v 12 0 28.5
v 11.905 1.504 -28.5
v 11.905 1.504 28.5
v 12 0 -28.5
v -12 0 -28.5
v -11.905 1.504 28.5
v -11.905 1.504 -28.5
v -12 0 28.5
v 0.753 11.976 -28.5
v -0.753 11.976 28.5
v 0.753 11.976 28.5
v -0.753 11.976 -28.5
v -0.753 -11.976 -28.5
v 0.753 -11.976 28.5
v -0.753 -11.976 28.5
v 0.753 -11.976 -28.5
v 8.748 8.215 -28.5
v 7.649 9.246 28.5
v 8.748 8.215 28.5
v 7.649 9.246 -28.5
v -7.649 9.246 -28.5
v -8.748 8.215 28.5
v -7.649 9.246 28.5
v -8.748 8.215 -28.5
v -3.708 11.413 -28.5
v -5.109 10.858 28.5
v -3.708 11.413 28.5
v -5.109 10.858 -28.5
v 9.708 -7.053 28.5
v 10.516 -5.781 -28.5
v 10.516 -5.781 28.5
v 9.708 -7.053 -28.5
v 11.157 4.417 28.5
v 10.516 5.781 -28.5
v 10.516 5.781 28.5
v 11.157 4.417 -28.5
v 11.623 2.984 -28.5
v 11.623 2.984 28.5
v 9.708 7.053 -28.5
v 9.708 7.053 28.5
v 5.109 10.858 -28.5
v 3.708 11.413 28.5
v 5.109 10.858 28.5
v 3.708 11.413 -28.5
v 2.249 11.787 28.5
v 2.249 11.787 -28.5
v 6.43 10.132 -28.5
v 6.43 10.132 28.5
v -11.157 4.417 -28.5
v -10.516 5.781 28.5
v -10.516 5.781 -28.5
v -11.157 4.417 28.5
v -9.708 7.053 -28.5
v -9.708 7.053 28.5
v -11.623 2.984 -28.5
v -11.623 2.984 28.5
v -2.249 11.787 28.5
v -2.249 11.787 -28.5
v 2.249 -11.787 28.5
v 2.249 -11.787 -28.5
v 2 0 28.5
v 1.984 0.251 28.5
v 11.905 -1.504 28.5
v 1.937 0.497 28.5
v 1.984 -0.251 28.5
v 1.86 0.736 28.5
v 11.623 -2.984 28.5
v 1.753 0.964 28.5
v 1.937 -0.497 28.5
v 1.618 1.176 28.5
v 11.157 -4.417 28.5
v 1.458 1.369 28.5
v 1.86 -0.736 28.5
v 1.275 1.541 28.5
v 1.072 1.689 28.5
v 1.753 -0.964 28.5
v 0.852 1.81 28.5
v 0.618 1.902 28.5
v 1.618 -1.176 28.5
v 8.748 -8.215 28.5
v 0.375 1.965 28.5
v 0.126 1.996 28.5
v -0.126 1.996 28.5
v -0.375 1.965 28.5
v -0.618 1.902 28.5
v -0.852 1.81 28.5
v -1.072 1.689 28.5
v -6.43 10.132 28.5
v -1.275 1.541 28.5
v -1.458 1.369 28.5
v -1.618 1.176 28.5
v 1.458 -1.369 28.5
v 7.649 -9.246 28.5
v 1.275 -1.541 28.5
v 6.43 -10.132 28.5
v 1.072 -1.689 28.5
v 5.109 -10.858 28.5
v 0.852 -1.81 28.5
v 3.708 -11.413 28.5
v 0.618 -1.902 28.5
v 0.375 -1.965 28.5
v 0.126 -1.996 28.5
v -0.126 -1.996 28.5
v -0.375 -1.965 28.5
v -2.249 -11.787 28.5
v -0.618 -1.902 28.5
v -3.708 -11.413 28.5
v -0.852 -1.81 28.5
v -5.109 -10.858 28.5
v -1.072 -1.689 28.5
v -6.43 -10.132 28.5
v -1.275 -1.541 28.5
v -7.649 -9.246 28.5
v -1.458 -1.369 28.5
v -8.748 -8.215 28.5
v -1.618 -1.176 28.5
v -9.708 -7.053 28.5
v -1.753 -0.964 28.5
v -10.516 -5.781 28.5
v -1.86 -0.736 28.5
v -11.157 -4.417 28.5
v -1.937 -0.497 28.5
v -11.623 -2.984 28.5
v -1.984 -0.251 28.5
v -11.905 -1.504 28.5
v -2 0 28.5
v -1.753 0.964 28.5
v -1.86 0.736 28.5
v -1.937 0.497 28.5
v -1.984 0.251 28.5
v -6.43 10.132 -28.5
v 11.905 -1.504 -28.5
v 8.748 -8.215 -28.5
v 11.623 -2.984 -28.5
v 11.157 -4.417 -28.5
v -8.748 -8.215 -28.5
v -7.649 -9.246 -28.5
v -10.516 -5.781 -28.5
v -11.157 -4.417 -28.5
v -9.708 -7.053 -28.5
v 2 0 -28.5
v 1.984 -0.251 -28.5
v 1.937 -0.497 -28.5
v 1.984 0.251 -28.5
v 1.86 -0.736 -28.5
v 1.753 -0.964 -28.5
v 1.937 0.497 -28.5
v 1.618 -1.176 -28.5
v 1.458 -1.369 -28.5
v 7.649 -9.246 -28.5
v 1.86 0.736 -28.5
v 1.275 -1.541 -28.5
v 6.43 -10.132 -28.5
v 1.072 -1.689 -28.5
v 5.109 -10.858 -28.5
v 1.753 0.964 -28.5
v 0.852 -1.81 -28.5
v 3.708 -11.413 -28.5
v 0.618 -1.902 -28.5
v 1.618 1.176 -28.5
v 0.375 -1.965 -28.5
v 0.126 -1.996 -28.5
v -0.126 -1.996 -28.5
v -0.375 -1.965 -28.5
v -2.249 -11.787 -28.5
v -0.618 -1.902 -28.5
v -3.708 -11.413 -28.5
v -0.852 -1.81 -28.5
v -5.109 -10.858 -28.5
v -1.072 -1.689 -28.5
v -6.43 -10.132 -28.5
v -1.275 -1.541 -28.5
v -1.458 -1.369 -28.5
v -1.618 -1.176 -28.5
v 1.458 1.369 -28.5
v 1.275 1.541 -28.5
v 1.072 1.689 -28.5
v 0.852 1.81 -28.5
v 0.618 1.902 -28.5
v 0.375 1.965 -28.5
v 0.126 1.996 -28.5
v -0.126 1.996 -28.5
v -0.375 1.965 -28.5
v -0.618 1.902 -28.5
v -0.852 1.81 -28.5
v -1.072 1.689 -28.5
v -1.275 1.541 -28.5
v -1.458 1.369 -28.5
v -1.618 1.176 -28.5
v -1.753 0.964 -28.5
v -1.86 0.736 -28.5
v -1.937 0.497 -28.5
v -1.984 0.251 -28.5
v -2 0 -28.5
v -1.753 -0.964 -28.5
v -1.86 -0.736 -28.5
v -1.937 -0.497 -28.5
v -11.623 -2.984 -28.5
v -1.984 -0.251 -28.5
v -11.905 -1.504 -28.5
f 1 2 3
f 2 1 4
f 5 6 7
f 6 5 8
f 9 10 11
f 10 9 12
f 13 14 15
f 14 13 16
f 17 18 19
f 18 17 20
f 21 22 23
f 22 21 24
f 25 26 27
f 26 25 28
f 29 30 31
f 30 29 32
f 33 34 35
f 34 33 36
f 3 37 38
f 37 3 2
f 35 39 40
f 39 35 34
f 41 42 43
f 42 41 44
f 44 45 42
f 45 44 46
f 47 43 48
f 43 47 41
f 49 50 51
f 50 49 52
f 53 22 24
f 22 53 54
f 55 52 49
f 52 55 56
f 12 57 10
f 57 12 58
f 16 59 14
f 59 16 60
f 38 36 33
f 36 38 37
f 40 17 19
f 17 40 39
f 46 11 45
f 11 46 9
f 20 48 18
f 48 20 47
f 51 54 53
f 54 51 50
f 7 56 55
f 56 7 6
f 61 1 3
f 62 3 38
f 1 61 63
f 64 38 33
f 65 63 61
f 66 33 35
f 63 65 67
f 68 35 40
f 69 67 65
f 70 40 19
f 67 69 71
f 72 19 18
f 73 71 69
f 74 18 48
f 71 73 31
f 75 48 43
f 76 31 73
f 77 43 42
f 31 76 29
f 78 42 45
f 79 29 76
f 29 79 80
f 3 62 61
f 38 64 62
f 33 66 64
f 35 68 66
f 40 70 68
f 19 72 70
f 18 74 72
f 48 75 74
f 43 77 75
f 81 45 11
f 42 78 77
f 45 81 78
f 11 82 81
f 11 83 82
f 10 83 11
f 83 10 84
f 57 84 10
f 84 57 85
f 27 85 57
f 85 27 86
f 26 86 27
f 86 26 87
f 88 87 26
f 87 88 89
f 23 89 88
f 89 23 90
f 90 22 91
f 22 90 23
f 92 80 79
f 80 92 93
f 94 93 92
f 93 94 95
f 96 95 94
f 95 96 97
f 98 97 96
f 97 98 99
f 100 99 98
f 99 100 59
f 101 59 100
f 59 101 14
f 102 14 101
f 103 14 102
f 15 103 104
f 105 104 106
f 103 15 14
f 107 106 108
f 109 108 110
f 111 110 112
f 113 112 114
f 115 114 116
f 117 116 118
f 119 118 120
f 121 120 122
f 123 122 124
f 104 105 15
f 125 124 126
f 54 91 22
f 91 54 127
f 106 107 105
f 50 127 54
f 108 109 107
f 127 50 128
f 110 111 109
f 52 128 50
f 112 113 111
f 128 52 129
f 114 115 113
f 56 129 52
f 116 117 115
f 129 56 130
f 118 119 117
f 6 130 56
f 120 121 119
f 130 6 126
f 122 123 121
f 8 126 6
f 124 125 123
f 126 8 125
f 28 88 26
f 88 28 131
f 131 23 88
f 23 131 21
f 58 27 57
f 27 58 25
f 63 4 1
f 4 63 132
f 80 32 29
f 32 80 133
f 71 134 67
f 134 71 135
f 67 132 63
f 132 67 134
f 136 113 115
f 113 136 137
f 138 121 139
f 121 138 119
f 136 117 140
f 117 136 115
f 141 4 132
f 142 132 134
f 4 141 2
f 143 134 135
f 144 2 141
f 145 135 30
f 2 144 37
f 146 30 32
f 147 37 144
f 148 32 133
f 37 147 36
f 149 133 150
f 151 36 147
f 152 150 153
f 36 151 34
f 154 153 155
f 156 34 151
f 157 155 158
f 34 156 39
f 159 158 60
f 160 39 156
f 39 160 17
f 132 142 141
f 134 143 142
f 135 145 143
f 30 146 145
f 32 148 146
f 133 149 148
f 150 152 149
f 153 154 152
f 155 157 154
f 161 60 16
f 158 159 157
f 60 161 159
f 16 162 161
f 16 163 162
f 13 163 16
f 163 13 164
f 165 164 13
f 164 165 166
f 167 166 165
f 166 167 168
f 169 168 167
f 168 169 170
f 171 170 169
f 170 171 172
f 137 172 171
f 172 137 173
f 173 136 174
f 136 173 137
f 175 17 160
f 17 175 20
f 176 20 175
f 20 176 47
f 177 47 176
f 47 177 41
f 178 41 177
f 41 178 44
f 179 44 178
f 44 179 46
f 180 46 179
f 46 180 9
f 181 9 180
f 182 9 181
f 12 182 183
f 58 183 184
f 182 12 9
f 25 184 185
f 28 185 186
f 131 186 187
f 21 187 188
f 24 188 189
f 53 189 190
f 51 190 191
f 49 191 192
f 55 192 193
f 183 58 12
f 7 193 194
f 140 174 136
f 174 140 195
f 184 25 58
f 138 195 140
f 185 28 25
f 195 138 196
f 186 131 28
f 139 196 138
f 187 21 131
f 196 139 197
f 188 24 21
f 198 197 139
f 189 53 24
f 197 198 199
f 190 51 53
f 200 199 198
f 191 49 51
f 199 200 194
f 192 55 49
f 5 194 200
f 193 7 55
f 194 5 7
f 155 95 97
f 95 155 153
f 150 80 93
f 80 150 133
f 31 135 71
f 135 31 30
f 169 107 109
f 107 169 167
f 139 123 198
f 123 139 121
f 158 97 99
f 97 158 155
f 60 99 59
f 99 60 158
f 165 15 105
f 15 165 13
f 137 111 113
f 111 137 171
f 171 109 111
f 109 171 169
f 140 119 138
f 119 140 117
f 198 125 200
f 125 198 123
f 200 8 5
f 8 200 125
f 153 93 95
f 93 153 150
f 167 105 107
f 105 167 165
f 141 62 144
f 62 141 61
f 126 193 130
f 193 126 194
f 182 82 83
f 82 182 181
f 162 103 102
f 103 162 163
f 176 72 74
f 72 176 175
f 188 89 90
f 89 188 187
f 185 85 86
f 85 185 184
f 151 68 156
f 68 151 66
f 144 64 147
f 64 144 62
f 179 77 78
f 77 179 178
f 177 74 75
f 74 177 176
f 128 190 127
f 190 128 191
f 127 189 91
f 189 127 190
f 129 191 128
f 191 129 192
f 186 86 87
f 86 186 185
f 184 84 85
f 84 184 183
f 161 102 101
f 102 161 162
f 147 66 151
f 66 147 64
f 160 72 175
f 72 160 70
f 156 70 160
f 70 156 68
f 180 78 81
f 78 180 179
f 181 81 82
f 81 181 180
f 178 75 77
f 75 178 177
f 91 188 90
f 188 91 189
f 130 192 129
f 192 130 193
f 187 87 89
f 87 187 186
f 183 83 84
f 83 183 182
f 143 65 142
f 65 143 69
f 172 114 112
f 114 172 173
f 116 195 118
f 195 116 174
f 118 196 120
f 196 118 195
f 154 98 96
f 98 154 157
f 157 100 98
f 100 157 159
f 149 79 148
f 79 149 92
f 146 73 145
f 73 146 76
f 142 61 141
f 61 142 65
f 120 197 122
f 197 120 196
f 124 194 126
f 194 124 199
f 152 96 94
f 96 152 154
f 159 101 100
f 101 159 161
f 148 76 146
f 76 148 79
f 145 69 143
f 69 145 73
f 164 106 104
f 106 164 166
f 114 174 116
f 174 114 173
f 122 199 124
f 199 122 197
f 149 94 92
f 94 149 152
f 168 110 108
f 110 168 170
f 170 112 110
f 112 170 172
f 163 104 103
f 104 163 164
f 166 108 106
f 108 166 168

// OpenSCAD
$fn = 50;


difference() {
	union() {
		translate(v = [0, 0, -28.5000000000]) {
			cylinder(h = 57, r = 12.0000000000);
		}
	}
	union() {
		translate(v = [0, 0, -100.0000000000]) {
			cylinder(h = 200, r = 2.0000000000);
		}
	}
}
